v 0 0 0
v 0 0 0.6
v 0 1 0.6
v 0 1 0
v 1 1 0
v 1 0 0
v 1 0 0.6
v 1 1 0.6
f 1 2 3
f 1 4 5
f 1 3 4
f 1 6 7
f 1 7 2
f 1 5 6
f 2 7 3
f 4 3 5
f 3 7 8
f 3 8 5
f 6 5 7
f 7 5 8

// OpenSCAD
/* Warning, this is a very basic generator with a lot of approximation 
input data : [UQFN, MDA, 1x1x0.6mm, 6, , A, C04-01045A]
generated by com.zoubworld.electronics.cad.model3d.Basic
Date : Sun Feb 15 10:50:49 CET 2026
*/

//body
color("black")
translate([0,0,0])
cube([1.0,1.0,0.6], center=false);
